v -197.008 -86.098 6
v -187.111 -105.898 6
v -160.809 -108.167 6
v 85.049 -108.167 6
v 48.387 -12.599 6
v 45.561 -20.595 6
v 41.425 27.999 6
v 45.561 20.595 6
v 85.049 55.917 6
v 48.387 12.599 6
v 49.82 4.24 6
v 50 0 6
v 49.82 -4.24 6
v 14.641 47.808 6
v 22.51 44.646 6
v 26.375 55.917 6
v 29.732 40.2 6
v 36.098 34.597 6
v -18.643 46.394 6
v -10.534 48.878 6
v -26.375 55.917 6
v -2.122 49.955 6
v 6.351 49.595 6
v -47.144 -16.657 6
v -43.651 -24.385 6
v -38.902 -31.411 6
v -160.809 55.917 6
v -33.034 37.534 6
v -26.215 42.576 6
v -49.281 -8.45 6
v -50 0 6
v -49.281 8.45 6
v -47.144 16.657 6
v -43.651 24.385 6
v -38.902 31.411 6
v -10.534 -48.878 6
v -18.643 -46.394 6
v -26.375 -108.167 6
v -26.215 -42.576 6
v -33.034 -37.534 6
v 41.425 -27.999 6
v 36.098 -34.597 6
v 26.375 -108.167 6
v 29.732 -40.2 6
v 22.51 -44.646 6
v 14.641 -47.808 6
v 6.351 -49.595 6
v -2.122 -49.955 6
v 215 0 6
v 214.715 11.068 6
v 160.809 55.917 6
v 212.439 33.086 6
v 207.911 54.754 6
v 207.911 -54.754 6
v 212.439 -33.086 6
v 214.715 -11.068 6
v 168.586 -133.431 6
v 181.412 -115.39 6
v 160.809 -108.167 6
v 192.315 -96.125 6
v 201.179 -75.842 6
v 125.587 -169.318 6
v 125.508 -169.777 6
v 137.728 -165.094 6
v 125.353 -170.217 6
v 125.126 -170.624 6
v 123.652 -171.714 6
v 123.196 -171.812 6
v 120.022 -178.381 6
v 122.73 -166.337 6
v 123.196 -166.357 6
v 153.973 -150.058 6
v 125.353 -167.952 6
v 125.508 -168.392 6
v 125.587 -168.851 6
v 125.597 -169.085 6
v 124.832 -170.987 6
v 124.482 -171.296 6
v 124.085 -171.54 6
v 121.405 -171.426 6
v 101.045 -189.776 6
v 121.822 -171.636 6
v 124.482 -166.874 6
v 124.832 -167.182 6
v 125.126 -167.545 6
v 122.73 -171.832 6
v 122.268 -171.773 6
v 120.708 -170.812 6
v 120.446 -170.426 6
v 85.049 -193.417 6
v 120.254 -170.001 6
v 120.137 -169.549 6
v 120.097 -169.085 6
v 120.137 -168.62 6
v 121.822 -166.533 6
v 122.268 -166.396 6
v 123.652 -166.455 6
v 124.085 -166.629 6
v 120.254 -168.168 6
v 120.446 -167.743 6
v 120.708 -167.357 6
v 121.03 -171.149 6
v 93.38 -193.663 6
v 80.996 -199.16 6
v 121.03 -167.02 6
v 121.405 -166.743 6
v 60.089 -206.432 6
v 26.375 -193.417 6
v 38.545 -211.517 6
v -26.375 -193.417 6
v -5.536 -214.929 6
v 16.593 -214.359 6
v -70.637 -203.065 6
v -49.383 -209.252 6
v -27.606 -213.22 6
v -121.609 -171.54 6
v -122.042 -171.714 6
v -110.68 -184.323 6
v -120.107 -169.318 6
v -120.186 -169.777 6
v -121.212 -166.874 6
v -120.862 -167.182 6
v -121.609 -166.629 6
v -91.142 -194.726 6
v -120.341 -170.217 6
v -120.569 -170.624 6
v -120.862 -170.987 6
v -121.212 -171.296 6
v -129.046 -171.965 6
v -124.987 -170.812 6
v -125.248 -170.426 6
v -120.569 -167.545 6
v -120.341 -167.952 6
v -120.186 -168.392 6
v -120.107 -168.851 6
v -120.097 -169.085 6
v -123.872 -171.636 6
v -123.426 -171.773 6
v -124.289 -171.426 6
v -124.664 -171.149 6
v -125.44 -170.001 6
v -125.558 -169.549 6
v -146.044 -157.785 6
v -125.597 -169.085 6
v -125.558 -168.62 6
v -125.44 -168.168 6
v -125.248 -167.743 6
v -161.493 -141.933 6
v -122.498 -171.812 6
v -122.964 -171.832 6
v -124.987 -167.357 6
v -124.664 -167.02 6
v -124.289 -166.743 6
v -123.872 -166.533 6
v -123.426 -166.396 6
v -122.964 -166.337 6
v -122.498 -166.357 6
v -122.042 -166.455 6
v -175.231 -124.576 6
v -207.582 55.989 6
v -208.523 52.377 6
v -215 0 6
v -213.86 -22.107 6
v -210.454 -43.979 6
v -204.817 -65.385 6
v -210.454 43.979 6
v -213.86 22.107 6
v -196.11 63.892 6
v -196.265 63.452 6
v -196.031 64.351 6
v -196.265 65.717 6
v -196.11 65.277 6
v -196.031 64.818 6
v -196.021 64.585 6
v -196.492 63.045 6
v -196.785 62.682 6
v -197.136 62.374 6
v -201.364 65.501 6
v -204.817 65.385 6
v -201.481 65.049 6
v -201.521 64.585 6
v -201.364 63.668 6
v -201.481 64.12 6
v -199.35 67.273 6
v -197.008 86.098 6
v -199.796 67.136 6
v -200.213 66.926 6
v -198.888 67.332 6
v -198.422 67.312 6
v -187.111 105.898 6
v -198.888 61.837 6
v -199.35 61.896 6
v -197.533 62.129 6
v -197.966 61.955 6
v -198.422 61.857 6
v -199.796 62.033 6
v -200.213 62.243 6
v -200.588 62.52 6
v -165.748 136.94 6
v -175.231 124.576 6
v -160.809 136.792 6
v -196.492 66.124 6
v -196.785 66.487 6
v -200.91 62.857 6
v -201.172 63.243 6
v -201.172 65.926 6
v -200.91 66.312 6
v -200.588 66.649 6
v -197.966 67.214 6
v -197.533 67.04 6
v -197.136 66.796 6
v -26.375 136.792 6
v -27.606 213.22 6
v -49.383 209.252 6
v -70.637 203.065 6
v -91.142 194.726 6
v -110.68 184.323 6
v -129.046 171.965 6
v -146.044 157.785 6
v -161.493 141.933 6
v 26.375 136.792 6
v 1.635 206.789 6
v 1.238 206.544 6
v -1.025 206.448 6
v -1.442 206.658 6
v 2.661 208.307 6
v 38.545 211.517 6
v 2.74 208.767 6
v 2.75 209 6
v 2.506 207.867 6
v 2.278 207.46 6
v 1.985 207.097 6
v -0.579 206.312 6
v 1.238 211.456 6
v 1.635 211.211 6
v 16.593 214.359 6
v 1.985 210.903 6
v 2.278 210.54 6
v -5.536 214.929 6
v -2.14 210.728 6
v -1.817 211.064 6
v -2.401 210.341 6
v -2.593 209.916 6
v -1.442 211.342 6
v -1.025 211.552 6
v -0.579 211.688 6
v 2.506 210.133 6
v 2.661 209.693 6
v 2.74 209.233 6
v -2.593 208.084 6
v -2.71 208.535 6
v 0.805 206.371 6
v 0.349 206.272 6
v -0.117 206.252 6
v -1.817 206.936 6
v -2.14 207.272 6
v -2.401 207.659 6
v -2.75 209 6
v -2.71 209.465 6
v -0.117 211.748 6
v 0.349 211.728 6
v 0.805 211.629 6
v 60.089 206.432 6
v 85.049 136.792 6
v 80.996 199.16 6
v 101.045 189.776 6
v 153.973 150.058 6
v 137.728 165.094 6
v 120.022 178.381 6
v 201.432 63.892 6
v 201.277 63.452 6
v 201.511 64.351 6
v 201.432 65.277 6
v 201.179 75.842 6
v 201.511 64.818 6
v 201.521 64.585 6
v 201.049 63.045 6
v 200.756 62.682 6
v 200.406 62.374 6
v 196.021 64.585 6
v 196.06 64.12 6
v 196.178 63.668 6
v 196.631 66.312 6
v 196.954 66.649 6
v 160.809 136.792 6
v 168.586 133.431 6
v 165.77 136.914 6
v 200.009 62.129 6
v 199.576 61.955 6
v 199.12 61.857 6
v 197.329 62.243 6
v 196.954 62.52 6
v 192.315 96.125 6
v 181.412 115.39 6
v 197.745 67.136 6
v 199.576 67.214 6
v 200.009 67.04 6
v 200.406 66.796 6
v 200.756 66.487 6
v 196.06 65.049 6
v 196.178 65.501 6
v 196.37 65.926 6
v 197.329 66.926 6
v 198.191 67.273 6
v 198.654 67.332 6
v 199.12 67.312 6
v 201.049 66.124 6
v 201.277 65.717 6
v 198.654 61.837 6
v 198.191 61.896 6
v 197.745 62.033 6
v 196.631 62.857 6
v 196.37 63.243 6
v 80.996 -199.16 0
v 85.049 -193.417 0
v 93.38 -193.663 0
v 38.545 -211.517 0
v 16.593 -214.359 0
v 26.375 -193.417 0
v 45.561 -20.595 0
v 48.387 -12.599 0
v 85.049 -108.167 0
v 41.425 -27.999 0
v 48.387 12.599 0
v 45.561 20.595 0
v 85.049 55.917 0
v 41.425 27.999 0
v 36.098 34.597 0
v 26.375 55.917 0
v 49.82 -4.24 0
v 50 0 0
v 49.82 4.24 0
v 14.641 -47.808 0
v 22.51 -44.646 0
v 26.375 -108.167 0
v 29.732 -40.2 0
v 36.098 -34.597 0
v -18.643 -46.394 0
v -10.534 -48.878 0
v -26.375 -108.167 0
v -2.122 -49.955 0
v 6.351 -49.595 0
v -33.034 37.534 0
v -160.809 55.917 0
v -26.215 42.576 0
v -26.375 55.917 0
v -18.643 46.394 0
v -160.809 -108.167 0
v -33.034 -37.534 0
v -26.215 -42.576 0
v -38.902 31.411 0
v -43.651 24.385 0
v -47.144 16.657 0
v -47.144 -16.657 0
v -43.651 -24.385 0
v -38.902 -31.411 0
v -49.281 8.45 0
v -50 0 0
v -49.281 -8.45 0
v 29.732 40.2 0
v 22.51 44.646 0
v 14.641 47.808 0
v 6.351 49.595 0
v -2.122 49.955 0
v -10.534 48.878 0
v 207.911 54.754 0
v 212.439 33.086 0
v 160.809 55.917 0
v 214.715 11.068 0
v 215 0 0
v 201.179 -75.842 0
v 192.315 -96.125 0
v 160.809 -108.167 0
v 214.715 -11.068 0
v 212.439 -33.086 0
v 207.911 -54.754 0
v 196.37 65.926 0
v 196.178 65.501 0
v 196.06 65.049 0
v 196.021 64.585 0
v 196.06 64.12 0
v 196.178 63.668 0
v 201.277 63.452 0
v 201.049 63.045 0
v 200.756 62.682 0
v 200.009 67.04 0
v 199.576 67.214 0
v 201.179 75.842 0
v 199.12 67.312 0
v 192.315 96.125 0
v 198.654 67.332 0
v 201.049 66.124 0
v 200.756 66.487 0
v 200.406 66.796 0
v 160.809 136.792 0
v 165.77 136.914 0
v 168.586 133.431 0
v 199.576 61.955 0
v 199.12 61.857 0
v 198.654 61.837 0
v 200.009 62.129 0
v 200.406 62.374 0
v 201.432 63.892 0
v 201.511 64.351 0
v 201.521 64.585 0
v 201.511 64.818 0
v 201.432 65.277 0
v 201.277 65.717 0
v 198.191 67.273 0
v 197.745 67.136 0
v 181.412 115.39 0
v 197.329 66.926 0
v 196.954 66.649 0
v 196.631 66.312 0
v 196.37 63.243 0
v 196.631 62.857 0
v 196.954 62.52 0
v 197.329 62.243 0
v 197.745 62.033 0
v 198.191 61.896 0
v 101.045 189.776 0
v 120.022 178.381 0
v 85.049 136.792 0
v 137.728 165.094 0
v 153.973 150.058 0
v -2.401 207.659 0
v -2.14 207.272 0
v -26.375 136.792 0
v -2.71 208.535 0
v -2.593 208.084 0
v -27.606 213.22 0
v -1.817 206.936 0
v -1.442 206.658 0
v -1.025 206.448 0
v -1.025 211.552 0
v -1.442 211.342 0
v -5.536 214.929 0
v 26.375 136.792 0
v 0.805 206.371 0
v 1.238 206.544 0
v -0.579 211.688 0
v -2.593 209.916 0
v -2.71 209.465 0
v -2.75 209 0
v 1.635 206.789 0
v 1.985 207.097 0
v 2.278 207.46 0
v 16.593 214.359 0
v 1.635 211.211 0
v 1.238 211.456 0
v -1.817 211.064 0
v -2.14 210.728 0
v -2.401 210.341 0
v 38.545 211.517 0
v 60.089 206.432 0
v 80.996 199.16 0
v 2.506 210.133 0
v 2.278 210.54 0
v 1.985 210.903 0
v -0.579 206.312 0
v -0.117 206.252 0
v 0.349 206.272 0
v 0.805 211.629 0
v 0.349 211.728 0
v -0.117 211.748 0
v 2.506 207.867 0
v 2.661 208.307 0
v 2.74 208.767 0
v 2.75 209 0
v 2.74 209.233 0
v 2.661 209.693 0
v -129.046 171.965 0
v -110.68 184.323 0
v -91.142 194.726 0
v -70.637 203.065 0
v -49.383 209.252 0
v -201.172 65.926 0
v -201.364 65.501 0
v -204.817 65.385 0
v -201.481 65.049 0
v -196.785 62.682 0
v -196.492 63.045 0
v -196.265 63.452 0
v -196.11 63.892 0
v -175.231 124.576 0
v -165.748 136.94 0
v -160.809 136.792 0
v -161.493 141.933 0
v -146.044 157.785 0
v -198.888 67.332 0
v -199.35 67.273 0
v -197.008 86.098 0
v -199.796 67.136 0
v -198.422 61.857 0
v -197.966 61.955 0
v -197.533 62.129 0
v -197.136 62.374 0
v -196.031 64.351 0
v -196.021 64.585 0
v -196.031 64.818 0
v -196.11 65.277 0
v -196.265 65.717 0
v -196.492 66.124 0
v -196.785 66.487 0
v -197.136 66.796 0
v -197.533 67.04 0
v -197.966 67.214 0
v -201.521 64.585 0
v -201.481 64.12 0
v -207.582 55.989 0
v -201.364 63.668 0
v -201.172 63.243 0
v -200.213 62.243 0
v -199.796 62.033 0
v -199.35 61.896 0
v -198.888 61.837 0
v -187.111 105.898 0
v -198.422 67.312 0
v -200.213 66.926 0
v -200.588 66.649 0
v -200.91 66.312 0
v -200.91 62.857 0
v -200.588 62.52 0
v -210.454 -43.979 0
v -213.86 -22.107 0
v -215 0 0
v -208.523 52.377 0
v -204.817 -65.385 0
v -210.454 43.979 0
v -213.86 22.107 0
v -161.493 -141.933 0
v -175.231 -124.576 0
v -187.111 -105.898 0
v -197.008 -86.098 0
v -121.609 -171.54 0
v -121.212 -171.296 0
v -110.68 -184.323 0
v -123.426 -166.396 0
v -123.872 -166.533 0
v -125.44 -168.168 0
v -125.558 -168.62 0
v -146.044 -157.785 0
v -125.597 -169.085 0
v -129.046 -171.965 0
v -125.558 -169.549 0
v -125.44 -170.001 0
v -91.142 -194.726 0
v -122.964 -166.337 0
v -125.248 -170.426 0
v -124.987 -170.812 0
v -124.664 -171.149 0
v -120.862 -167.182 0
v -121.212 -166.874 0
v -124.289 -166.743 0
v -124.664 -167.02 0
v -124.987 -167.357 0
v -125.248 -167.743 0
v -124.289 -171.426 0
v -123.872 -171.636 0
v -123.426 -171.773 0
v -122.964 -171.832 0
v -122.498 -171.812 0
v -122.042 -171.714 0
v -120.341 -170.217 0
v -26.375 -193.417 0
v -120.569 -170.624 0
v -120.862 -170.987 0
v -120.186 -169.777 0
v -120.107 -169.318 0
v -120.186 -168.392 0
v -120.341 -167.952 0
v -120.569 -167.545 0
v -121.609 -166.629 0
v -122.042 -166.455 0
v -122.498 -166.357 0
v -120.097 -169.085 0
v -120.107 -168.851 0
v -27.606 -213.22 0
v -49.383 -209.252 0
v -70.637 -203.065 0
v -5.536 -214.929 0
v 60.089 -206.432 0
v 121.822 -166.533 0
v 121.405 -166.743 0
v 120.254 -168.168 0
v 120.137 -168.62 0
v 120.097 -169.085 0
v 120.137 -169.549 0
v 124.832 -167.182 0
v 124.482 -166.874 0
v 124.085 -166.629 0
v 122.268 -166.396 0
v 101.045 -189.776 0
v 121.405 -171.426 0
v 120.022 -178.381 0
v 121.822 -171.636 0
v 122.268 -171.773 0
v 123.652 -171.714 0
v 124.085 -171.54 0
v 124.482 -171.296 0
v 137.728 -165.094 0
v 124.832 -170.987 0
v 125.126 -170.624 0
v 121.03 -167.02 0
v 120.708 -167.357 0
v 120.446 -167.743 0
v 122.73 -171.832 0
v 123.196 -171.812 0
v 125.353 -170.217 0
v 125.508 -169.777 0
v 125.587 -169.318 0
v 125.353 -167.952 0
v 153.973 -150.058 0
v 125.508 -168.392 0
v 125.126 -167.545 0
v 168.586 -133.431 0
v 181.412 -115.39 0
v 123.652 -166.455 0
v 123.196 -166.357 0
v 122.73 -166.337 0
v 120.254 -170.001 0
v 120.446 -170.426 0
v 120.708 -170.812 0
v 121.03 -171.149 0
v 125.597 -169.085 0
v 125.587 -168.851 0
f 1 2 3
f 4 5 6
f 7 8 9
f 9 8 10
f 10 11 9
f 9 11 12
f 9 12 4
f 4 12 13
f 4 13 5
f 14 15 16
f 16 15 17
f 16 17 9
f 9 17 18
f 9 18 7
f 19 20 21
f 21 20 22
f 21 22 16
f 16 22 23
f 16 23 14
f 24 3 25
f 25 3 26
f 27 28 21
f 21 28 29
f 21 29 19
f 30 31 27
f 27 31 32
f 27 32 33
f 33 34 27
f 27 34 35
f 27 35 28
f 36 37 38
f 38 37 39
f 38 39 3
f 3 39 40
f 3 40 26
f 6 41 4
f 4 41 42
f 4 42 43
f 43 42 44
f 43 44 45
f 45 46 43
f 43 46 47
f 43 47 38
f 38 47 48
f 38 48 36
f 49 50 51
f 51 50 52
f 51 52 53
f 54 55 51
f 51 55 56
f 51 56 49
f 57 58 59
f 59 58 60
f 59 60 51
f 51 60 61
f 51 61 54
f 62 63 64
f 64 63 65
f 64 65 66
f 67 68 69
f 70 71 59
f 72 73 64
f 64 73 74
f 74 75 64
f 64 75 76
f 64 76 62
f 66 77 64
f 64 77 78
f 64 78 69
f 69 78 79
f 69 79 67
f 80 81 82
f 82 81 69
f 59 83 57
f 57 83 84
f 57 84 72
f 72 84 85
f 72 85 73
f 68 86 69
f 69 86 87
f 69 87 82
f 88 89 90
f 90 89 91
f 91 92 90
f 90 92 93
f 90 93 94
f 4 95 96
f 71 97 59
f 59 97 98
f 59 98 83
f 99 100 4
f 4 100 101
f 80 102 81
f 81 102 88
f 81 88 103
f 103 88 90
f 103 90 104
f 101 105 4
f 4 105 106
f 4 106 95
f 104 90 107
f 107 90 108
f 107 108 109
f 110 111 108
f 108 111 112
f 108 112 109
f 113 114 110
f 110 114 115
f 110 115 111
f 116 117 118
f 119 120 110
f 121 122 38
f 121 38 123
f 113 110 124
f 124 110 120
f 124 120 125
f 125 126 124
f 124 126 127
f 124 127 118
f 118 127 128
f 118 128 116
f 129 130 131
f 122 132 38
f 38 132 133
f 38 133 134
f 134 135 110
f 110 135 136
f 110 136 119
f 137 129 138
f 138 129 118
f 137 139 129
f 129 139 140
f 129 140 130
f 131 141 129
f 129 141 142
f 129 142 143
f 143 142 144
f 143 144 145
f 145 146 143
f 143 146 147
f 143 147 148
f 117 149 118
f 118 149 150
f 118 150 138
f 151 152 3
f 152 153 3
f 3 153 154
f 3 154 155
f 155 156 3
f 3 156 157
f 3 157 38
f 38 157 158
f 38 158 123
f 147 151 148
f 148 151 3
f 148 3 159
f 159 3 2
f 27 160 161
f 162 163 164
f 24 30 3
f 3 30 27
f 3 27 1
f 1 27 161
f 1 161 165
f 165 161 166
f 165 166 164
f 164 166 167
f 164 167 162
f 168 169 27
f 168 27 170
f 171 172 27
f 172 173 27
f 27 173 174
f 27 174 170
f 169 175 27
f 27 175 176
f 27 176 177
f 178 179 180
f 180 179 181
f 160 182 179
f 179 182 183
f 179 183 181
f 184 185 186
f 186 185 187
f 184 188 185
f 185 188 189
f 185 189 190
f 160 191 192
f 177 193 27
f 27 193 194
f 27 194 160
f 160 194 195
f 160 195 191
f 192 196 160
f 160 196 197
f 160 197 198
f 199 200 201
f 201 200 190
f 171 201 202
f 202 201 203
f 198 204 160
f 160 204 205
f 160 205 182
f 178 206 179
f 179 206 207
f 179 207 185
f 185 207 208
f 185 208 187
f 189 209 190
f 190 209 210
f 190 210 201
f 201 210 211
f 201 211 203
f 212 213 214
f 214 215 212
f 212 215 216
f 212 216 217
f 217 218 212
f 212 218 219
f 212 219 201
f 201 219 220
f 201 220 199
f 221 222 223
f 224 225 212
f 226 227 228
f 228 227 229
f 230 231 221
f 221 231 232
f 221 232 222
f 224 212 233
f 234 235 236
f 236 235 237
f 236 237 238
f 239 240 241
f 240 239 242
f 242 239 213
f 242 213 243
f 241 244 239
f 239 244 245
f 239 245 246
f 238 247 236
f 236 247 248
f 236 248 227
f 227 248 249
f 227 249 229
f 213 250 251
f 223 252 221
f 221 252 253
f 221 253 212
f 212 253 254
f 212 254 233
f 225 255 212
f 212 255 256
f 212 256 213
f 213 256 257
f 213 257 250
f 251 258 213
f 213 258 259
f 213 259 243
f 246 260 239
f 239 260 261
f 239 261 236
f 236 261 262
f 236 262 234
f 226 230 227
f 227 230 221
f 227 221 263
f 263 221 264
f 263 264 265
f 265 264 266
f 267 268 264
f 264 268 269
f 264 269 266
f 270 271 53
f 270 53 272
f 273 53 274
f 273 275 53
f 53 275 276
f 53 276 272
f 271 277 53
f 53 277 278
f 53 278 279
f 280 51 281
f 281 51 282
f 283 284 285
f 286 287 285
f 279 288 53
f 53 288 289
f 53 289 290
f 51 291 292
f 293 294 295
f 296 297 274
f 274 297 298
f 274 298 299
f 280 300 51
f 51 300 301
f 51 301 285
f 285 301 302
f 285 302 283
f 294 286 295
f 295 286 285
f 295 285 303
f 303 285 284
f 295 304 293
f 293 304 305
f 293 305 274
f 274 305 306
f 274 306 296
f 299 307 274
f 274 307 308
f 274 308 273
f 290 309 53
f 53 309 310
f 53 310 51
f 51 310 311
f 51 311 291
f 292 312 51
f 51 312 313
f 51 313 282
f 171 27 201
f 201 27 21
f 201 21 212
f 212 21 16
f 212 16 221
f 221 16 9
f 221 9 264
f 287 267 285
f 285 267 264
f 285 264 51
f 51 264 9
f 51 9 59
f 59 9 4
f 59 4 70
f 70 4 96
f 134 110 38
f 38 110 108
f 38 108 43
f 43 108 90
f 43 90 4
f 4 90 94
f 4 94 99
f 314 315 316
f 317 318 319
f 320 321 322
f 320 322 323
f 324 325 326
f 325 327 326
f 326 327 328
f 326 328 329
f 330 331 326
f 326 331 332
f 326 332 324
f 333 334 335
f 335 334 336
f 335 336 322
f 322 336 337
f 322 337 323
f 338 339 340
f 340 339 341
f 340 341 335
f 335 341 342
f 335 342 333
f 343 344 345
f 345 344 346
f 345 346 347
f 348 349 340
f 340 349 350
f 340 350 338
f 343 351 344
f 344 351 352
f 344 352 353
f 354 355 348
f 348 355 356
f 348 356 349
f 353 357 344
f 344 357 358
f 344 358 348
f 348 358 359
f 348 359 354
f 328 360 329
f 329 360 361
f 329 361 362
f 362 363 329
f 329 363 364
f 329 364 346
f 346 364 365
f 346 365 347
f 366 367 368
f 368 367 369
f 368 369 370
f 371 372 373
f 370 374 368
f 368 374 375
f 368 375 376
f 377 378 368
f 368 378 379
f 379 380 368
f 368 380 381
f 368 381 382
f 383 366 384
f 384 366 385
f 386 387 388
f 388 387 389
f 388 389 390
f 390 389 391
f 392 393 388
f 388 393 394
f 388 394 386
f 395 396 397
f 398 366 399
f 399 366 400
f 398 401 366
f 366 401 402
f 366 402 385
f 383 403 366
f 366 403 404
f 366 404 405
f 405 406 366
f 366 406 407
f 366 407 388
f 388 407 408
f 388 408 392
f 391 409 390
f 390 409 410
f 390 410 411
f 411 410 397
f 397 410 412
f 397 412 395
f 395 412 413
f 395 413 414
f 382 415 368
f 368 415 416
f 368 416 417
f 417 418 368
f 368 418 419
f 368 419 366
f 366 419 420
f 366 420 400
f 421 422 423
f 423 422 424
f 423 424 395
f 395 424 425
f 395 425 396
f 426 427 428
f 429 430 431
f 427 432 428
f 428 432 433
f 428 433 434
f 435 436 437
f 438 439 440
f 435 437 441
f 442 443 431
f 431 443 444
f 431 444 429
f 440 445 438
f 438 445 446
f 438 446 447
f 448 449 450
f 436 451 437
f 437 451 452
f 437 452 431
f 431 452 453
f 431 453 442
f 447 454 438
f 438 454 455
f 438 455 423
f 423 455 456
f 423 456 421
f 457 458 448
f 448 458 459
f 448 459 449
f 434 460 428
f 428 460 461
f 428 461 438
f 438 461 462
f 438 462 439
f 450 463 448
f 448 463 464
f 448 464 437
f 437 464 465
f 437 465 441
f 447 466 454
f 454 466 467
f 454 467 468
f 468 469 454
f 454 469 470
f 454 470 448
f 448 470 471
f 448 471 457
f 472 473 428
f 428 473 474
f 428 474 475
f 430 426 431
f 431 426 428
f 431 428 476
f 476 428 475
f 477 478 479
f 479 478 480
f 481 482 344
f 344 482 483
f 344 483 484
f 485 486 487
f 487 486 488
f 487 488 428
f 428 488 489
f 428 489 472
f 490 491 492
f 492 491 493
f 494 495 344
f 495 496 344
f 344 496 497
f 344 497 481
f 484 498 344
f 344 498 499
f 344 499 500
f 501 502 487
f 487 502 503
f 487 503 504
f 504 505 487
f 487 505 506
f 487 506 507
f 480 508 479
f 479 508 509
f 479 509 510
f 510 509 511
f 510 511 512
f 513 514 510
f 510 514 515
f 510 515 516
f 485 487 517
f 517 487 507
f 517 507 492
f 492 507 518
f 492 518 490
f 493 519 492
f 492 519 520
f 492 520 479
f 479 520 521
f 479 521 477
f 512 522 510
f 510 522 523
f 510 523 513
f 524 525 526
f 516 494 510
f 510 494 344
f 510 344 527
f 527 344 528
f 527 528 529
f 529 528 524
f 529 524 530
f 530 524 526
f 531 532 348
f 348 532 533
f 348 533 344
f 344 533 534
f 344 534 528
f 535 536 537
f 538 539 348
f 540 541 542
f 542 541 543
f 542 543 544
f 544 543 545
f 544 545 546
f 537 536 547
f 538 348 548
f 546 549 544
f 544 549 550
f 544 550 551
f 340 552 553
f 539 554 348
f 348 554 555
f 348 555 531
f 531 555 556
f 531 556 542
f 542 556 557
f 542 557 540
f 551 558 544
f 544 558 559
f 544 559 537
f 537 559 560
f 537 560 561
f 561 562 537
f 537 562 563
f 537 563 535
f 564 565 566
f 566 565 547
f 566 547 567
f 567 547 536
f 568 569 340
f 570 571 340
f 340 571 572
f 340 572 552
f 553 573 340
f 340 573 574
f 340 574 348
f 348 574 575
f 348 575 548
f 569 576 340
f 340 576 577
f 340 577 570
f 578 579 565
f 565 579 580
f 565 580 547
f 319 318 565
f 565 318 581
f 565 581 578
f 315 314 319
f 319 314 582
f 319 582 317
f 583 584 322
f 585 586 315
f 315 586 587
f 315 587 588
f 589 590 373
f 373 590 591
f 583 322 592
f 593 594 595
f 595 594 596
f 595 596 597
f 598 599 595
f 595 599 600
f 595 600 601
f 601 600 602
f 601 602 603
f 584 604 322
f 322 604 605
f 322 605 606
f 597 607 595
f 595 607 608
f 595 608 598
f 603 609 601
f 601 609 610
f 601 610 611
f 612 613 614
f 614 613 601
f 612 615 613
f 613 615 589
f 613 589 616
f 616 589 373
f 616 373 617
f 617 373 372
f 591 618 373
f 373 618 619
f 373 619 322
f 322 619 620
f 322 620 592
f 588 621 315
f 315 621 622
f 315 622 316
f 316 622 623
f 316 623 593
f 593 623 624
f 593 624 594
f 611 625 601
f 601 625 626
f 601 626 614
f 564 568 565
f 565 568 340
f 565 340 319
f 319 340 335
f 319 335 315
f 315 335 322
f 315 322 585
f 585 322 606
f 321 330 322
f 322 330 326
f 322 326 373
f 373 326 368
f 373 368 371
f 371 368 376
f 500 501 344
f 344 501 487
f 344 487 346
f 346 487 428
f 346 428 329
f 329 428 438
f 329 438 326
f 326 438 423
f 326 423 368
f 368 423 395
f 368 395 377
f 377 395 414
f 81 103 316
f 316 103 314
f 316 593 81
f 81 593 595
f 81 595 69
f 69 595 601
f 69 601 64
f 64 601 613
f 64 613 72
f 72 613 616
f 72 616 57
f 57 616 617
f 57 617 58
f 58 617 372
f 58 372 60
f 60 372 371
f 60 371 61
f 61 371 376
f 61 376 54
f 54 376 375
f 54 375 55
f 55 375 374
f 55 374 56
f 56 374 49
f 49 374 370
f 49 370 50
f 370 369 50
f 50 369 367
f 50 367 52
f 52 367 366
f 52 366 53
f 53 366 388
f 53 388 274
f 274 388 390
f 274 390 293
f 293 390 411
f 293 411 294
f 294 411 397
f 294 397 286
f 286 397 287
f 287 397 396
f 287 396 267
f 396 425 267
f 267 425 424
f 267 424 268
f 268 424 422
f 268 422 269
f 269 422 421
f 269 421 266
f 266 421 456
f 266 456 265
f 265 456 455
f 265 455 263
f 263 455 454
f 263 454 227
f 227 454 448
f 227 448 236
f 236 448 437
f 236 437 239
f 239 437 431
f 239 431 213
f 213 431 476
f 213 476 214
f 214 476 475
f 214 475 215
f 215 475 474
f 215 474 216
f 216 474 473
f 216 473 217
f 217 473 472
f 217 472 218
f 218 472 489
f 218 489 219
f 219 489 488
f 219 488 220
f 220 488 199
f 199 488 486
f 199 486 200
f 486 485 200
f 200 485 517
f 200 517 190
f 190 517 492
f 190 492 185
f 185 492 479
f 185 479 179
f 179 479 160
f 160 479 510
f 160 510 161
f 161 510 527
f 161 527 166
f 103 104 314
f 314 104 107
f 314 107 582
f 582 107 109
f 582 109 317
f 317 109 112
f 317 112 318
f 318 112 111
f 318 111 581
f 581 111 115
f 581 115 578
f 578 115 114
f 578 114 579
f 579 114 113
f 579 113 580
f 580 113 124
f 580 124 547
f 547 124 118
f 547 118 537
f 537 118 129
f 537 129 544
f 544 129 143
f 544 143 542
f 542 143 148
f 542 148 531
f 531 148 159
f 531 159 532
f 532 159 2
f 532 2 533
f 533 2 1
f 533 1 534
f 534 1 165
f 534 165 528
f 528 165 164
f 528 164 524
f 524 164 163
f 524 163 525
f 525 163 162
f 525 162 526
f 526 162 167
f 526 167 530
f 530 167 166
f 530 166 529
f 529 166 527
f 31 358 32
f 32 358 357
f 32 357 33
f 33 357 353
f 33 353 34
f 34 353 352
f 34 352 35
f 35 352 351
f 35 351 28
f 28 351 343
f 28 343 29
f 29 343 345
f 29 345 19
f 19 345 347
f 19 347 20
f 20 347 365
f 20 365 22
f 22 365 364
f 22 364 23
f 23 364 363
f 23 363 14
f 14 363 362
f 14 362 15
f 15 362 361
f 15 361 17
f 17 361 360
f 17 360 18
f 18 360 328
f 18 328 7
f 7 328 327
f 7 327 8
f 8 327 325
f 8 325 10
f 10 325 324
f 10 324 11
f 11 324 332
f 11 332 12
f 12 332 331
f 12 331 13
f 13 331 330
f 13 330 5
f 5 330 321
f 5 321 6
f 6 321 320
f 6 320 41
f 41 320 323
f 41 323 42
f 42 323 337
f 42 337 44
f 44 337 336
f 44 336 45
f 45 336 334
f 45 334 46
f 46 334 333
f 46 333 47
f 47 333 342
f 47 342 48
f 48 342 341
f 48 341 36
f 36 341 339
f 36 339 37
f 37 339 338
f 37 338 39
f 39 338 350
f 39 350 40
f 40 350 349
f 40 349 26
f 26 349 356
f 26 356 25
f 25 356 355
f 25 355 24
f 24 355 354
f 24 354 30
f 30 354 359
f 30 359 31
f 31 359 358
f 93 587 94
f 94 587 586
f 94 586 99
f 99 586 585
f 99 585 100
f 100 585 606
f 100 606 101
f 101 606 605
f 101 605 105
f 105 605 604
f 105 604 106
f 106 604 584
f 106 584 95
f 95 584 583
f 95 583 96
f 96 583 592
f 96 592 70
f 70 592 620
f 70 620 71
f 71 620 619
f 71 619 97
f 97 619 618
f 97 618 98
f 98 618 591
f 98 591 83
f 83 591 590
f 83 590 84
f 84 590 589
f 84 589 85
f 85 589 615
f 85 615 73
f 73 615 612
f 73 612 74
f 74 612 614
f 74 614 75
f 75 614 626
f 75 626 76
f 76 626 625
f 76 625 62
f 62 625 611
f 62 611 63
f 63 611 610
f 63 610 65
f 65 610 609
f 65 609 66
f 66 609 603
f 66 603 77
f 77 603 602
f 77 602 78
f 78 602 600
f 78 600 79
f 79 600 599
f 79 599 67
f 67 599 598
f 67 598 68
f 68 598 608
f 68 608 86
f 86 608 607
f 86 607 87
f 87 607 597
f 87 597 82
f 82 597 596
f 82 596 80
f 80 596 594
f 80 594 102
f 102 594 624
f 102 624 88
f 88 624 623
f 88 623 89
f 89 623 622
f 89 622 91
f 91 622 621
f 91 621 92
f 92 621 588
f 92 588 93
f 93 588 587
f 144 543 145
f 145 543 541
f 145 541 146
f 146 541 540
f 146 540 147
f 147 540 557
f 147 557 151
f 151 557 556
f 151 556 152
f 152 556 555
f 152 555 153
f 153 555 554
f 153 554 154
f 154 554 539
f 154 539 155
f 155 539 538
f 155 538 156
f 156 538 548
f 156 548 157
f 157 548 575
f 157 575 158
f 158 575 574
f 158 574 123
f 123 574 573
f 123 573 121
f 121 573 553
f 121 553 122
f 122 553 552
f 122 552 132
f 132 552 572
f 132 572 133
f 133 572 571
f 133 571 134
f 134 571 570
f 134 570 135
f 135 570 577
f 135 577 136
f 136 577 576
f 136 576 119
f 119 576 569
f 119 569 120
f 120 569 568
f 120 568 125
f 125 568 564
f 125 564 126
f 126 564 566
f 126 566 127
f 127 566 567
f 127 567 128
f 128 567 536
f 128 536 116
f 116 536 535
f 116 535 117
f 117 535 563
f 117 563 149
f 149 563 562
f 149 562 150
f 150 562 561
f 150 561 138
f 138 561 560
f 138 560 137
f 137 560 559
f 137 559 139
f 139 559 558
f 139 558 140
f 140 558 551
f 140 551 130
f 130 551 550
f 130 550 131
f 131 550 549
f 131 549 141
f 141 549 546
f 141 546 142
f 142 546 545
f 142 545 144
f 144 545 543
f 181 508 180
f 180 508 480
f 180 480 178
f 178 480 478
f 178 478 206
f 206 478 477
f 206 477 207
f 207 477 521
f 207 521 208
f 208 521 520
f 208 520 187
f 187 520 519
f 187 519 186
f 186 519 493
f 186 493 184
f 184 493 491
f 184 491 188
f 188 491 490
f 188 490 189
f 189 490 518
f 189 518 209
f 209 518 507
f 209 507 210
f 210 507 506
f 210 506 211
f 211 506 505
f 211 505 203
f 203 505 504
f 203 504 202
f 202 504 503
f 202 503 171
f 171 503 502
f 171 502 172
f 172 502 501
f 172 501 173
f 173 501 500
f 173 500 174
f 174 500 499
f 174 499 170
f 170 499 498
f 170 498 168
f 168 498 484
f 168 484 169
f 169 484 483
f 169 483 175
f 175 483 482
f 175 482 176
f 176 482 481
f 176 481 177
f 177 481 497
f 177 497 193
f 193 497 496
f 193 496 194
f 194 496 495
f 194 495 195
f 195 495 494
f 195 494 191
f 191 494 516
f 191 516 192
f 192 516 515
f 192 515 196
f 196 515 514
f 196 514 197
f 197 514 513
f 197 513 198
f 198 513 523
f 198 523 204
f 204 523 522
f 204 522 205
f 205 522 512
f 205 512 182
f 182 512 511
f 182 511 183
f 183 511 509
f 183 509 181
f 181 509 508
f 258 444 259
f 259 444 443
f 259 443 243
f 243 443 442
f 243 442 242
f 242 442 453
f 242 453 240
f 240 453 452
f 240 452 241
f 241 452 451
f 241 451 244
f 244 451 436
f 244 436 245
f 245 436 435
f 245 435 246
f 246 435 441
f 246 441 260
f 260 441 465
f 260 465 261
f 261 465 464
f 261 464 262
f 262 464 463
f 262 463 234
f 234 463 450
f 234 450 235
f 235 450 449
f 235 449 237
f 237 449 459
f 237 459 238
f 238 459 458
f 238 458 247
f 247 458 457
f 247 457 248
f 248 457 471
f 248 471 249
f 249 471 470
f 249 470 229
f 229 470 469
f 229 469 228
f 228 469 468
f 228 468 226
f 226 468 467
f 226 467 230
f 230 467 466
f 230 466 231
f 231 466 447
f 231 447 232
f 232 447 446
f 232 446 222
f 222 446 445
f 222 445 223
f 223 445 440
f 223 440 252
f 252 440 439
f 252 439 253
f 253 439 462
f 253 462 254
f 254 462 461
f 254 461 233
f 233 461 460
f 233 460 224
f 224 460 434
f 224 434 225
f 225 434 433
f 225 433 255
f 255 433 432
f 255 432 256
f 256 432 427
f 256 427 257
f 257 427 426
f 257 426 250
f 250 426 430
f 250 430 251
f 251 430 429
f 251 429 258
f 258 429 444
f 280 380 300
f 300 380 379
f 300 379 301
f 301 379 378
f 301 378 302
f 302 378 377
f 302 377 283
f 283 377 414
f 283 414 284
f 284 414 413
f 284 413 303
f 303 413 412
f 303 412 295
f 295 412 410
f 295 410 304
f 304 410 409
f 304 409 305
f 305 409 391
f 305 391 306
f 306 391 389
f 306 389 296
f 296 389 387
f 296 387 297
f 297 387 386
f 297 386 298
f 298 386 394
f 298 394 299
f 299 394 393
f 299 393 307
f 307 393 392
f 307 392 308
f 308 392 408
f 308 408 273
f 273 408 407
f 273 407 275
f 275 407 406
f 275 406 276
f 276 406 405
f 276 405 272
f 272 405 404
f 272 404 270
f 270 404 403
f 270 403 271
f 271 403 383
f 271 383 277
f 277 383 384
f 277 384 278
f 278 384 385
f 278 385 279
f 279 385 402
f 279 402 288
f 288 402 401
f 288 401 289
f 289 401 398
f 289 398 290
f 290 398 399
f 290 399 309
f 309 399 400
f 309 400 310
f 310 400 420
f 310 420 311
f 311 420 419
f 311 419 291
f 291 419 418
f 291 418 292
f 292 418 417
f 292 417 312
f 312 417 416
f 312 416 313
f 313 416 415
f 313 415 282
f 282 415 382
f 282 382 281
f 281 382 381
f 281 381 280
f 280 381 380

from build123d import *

# Parameters (mm, degrees)
SKETCH1_R       = 215
SKETCH1_R_2     = 50
LID_DEPTH       = 6
SKETCH2_R       = 2.75
ROD_HOLES_DEPTH = 6


with BuildPart() as part:
    # Sketch1 → Lid (new body)
    with BuildSketch(Plane.XY):
        Circle(SKETCH1_R)
        Circle(SKETCH1_R_2, mode=Mode.SUBTRACT)
    extrude(amount=LID_DEPTH)

    # Sketch2 → Rod_holes (cut)
    with BuildSketch(Plane.XY):
        with Locations((198.770811906, 64.584551824)):
            Circle(SKETCH2_R)
        with Locations((0, 209)):
            Circle(SKETCH2_R)
        with Locations((-198.770811906, 64.584551824)):
            Circle(SKETCH2_R)
        with Locations((-122.847117729, -169.084551824)):
            Circle(SKETCH2_R)
        with Locations((122.847117729, -169.084551824)):
            Circle(SKETCH2_R)
    extrude(amount=ROD_HOLES_DEPTH, mode=Mode.SUBTRACT)


solid = part.part
